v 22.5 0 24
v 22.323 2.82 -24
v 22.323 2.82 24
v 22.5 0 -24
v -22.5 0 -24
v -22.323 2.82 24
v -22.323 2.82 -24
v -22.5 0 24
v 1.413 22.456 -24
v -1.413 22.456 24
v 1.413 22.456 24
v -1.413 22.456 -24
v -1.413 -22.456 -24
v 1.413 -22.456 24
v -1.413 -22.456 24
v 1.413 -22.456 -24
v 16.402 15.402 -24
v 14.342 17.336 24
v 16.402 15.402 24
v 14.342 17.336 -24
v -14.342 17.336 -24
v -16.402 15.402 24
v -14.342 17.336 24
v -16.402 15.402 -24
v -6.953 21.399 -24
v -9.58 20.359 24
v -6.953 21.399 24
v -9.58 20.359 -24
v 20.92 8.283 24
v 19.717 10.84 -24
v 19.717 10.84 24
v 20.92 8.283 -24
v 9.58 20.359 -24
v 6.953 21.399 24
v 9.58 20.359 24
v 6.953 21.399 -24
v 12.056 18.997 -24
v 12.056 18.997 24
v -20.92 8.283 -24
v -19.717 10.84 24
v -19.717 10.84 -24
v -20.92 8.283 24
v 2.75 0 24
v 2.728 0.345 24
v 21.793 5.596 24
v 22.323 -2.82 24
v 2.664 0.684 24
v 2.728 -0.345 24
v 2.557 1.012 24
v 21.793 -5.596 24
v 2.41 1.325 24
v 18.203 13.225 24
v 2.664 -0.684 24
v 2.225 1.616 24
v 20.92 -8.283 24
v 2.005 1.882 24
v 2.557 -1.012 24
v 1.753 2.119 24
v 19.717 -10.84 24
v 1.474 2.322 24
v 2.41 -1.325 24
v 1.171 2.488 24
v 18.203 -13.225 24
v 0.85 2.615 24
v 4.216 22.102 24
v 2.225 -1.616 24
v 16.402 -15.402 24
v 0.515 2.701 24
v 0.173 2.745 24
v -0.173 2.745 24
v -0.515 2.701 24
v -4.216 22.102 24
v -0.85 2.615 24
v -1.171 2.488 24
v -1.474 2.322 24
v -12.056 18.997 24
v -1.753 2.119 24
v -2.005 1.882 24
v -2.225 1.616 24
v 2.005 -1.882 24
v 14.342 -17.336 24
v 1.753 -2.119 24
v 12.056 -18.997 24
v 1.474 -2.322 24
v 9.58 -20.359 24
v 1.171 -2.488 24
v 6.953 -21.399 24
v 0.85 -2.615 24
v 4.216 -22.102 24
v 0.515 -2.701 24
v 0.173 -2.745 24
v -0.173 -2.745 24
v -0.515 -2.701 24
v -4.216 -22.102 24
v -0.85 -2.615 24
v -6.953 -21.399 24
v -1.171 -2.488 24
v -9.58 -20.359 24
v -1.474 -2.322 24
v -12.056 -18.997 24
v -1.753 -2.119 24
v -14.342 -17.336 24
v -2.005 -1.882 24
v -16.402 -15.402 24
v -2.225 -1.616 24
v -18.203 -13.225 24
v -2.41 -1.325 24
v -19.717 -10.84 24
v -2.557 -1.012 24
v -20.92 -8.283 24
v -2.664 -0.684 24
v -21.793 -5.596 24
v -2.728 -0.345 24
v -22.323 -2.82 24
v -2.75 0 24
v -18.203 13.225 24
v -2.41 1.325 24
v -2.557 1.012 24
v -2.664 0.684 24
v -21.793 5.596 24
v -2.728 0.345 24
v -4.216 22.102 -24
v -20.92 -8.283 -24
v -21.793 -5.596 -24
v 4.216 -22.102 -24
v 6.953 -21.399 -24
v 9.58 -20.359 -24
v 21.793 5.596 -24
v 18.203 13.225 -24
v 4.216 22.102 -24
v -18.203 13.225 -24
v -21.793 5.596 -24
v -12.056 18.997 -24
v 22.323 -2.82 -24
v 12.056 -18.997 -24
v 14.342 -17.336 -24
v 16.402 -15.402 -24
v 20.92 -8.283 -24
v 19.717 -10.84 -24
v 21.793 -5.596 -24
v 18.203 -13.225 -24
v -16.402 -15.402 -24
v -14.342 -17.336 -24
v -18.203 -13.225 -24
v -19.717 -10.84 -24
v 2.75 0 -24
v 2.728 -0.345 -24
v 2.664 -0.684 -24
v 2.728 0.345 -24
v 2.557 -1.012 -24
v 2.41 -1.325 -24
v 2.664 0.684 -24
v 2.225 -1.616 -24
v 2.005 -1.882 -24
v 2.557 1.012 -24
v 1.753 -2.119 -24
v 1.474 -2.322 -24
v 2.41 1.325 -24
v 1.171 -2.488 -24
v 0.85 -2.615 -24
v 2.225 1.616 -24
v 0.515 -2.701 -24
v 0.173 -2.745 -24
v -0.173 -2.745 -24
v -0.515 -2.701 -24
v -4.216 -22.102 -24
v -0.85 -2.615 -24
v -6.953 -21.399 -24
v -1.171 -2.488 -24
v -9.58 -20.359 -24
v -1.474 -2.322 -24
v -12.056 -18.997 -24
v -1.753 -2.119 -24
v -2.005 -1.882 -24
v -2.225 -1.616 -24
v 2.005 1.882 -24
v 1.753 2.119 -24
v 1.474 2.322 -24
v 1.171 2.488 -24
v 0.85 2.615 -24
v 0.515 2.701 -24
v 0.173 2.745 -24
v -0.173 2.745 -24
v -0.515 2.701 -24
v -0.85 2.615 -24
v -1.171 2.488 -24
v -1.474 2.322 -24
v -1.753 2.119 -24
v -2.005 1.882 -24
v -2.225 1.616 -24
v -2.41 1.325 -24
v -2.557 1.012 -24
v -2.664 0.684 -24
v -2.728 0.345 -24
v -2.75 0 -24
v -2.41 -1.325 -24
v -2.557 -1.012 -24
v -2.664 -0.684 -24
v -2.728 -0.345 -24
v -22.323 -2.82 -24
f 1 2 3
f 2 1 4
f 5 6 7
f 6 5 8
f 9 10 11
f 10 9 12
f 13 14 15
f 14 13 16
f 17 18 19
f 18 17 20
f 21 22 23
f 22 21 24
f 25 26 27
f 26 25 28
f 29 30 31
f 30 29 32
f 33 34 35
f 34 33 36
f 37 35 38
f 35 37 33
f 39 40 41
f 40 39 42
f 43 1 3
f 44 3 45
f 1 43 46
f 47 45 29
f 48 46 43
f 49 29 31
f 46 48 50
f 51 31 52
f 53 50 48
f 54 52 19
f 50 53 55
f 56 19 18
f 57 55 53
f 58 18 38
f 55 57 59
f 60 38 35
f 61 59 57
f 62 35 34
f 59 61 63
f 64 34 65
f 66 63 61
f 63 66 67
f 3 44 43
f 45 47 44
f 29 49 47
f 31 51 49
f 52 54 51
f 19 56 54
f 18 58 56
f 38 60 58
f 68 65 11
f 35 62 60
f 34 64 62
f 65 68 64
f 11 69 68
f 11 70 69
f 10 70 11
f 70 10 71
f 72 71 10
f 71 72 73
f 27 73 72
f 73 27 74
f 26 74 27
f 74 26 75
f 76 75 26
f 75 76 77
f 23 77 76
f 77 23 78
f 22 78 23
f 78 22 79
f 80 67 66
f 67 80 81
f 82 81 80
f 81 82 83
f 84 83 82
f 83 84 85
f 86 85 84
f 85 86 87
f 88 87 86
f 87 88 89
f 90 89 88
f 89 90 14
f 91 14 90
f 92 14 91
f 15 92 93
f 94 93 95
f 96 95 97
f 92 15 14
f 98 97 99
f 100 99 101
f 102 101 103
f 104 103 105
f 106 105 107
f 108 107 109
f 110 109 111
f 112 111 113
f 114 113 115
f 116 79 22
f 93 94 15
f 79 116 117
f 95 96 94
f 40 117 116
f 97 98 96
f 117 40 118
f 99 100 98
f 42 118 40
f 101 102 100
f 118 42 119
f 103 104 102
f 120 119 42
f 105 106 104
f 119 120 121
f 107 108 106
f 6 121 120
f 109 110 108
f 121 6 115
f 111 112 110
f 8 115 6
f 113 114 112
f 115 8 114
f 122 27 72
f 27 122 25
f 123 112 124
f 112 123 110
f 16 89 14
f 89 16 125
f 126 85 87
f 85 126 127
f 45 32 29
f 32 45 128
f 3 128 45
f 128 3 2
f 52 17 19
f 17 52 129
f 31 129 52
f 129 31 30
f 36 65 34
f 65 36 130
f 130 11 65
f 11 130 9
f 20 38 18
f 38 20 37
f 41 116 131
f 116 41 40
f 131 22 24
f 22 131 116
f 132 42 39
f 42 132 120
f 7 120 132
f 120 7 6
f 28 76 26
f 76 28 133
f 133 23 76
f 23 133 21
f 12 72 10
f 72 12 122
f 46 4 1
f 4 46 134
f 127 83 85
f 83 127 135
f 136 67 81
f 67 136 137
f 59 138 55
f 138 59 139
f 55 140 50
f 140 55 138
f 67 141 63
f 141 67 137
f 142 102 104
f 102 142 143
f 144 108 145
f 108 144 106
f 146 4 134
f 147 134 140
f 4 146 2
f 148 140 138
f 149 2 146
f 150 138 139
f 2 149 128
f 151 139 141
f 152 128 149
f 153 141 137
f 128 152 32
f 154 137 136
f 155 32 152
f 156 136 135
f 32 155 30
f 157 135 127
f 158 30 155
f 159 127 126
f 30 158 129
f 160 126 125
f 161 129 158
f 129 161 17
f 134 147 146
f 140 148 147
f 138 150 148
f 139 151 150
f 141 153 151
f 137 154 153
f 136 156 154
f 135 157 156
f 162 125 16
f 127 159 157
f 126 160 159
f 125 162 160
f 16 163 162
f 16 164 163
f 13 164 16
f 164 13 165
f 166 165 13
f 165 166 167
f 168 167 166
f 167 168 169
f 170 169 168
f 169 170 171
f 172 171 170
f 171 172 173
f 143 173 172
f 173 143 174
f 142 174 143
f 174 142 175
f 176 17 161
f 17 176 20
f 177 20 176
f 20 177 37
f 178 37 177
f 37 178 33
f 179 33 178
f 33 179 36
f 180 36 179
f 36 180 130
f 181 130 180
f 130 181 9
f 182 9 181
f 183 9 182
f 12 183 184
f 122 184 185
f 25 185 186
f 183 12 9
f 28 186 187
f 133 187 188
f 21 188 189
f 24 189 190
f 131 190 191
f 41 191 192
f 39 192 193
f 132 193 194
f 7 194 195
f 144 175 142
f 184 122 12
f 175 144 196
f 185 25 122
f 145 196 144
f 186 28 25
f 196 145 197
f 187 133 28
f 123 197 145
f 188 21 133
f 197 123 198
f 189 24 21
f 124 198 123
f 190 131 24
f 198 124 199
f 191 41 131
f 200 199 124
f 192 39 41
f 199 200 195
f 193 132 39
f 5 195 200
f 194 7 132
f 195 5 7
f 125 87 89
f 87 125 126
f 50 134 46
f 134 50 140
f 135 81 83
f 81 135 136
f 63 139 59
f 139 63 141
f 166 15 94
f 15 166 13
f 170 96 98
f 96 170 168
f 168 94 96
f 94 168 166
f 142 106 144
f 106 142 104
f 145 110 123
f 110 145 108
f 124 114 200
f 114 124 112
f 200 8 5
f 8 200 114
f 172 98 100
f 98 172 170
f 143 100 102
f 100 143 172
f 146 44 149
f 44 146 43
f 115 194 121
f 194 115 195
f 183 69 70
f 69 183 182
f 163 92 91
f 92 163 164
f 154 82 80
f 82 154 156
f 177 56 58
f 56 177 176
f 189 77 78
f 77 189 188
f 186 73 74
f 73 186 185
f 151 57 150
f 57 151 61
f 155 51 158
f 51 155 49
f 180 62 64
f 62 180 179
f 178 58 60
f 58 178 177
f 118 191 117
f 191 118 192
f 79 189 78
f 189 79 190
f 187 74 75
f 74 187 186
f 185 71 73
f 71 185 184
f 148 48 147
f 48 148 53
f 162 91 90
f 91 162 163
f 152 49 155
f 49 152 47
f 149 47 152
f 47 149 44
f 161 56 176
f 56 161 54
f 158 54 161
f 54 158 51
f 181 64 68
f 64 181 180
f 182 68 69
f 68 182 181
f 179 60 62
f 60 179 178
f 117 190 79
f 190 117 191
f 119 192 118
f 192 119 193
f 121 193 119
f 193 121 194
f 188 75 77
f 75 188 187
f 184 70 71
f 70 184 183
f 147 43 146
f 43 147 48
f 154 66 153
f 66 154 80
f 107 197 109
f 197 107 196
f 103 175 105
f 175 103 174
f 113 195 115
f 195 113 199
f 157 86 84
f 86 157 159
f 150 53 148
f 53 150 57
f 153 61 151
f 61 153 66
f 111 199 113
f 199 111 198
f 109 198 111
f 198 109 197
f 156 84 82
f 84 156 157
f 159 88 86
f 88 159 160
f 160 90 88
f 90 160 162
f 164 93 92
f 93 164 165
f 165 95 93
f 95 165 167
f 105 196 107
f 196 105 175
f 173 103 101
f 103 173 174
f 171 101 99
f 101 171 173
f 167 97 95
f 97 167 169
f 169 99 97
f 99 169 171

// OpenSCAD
$fn = 50;


difference() {
	union() {
		translate(v = [0, 0, -24.0000000000]) {
			cylinder(h = 48, r = 22.5000000000);
		}
	}
	union() {
		translate(v = [0, 0, -100.0000000000]) {
			cylinder(h = 200, r = 2.7500000000);
		}
	}
}
